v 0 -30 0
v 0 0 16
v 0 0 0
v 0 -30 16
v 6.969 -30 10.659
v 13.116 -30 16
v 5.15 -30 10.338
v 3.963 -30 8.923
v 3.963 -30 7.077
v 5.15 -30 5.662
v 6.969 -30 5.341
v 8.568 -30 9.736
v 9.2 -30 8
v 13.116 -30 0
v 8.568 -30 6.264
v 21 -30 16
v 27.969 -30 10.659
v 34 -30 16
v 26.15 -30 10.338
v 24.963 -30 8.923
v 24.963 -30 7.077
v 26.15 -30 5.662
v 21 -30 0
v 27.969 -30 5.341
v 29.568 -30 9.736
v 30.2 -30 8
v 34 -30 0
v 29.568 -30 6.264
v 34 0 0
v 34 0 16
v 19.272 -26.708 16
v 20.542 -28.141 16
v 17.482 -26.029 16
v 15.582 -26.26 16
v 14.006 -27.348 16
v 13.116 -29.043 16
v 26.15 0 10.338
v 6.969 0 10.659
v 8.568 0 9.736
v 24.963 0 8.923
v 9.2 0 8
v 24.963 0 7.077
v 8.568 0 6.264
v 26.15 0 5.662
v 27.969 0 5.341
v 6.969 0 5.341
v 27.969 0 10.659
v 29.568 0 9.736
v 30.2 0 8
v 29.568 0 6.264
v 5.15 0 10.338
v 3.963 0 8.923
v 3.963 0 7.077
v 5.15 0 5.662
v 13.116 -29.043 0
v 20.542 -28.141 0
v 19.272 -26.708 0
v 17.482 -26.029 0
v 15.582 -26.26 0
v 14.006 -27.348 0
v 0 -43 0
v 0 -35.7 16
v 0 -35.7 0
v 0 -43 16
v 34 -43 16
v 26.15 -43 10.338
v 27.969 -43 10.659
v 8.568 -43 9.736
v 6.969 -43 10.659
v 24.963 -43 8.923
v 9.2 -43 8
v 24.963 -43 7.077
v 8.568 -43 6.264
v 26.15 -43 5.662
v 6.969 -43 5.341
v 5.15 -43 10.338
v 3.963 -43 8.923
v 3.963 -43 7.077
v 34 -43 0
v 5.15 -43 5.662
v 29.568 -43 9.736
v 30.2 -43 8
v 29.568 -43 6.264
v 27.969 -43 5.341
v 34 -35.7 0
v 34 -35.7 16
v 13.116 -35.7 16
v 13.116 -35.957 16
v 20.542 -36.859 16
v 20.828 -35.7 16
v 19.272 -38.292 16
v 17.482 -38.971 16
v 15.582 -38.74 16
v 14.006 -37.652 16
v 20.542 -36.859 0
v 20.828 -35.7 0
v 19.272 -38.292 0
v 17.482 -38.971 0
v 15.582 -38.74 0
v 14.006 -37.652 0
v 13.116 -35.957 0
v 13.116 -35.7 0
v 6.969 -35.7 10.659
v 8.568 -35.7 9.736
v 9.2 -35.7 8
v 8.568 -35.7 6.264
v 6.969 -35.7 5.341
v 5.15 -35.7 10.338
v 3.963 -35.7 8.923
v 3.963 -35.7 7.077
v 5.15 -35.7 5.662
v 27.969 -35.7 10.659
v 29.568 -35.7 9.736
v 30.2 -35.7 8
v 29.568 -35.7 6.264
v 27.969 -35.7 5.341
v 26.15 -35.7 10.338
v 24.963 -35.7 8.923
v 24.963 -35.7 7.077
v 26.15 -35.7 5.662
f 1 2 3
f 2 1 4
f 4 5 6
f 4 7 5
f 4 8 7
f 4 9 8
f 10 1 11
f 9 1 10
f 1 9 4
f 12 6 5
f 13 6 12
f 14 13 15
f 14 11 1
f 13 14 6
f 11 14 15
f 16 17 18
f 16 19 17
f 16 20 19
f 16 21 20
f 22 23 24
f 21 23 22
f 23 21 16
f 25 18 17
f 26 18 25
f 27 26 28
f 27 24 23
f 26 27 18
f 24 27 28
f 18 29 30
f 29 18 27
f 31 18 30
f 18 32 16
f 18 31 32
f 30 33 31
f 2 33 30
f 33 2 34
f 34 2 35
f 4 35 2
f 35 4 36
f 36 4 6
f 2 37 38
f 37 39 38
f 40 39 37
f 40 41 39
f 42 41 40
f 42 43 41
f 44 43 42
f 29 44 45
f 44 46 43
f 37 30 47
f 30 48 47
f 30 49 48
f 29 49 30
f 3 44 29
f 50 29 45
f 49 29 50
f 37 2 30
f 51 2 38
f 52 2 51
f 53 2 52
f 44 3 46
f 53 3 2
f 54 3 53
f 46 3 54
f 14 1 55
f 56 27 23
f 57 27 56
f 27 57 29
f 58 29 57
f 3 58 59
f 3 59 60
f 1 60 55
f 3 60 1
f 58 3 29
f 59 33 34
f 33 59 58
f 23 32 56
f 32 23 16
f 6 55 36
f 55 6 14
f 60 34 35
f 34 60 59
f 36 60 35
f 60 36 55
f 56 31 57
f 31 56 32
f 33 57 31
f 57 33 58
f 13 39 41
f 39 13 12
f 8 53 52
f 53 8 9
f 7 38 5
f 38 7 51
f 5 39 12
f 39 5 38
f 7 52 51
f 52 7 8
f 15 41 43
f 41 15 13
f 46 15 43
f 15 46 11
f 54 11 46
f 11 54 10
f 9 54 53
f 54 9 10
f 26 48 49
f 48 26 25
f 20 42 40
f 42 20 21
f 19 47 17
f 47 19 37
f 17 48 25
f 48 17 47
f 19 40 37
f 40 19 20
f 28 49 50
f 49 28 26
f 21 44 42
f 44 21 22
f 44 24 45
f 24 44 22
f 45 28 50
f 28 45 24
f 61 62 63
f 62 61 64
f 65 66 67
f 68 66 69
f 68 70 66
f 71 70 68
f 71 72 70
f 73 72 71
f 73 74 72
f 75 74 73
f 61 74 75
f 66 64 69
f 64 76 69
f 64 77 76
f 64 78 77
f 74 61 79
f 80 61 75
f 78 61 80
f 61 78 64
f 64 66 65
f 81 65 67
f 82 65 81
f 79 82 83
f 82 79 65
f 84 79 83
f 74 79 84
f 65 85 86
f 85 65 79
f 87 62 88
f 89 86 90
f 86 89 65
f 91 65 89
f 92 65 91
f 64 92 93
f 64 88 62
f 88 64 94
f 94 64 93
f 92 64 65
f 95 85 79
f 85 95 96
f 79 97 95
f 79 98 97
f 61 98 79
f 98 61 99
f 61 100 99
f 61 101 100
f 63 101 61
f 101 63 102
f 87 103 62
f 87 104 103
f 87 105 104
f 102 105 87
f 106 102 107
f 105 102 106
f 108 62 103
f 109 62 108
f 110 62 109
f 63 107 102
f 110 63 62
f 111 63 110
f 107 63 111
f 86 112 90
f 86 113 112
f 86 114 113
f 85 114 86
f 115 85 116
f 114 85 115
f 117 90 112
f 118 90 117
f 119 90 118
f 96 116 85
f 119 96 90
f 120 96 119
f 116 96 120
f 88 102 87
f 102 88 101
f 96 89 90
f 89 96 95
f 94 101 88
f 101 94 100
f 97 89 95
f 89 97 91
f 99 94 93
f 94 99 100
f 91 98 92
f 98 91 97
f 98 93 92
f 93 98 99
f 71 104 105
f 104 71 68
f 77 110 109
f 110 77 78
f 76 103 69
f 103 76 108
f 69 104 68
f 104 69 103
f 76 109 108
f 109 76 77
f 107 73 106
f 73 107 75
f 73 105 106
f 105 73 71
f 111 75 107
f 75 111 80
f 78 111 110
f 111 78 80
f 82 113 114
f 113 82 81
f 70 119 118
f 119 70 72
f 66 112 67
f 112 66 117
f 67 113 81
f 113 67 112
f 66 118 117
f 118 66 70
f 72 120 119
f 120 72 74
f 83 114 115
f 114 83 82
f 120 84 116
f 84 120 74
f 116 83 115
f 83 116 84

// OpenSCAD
// file: Hexa.scad
// include <Hexa.scad>;

m3h = 2.4; 		// hauteur
m3k = 5.5; 		// plat a plat
m3e = 6.3; 		// pointe a pointe
m3r = m3e/2; 	// rayon pointe a pointe
m3p = 0.5; 		// pas

m4h = 3.2;
m4k = 7;
m4e = 8.08;
m4r = m4e/2;
m4p = 0.7;

m5h = 4.7;
m5k = 8;
m5e = 9.23;
m5r = m5e/2;
m5p = 0.8;

m6h = 5.2;
m6k = 10;
m6e = 11.54;
m6r = m6e/2;
m6p = 1.0;

m8h = 6.8;
m8k = 13;
m8e = 15.01;
m8r = m8e/2;
m8p = 1.25;

m10h = 8.4;
m10k = 17;
m10e = 19.62;
m10r = m10e/2;
m10p = 1.5;

m12h = 10.8;
m12k = 19;
m12e = 21.93;
m12r = m12e/2;
m12p = 1.75;

coef = 2/sqrt(3);
echo(coef);

module m3(jk=0, jh=0, jvis=0){
    d = m3k * coef;
    cylinder(r=d/2+jk, h=m3h+jh, $fn=6);
    if(jvis != 0){
        translate([0,0,-30]) cylinder(r=3/2+jvis, h=60, $fn=12);
    }
}
// main file
nivz = 30;

rbag = 4; // rayon colonne
epx = 4; // epais entre vis et bord
epy = 16; // epais bord a bord
rvs = 5/2; // rayon vis serrage & fixa

ycolo = 100;

include <Hexa.scad>;

module bercolonne() difference(){
	cube([epx+rvs*2+epx+rbag*2+epx+rvs*2+epx, epy, nivz]);
	translate([epx+rvs*2+epx+rbag, -1, nivz]) rotate([-90,0,0]) cylinder(r=rbag, h=epy+2); // corps seringue
	
	
	// vis serrage 
	translate([epx+rvs, epy/2, -1]) {
		cylinder(r=rvs+0.2, h=nivz+2);
		//translate([0,0,15]) cylinder(r=m5r+0.5, h=m5h+0.4, $fn=6);
		//translate([-m5r,0,15]) cylinder(r=m5r+0.5, h=m5h+0.4, $fn=6);
	}
	translate([epx+rvs*2+epx+rbag*2+epx+rvs, epy/2, -1]) {
		cylinder(r=rvs+0.2, h=nivz+2);
		//translate([0,0,15]) cylinder(r=m5r+0.5, h=m5h+0.4, $fn=6);
		//translate([+m5r,0,15]) cylinder(r=m5r+0.5, h=m5h+0.4, $fn=6);
	}
	
	
	/*
	// vis fixa
	translate([(epx+rvs*2+epx+rbag)- spx/2, epy/2, -1]){ 
		#cylinder(r=rvs+0.2, h=nivz+2);
		//translate([0,0,1+10]) cylinder(r=m5r+0.5, h=nivz+2);
	}
	translate([(epx+rvs*2+epx+rbag)+ spx/2, epy/2, -1]){ 
		cylinder(r=rvs+0.2, h=nivz+2);
		//translate([0,0,1+10]) cylinder(r=m5r+0.5, h=nivz+2);
	}
	*/
}

module bercolcouv() translate([0,0,nivz]) difference(){
	cube([epx+rvs*2+epx+rbag*2+epx+rvs*2+epx, epy, rbag+epx]);
	// tranche de jeux
	translate([-1,-1,0]) cube([epx+rvs*2+epx+rbag*2+epx+rvs*2+epx+2, epy+2, 0.7]);
	// corps seringue
	translate([epx+rvs*2+epx+rbag, -1, 0]) rotate([-90,0,0]) cylinder(r=rbag, h=epy+2);
	// vis serrage 
	translate([epx+rvs, epy/2, -1]) cylinder(r=rvs+0.2, h=nivz+2);
	translate([epx+rvs*2+epx+rbag*2+epx+rvs, epy/2, -1]) cylinder(r=rvs+0.2, h=nivz+2);

}

rotate([90,0,0]){
	bercolonne();
	translate([0, 0, 5]) bercolcouv();
}
//translate([0, ycolo-epy, 0]) {
//	berceau();
//	couv();
//}

// print 
//translate([0,-10,nivz+rbag+epx]) rotate([180,0,0]) bercolcouv();
